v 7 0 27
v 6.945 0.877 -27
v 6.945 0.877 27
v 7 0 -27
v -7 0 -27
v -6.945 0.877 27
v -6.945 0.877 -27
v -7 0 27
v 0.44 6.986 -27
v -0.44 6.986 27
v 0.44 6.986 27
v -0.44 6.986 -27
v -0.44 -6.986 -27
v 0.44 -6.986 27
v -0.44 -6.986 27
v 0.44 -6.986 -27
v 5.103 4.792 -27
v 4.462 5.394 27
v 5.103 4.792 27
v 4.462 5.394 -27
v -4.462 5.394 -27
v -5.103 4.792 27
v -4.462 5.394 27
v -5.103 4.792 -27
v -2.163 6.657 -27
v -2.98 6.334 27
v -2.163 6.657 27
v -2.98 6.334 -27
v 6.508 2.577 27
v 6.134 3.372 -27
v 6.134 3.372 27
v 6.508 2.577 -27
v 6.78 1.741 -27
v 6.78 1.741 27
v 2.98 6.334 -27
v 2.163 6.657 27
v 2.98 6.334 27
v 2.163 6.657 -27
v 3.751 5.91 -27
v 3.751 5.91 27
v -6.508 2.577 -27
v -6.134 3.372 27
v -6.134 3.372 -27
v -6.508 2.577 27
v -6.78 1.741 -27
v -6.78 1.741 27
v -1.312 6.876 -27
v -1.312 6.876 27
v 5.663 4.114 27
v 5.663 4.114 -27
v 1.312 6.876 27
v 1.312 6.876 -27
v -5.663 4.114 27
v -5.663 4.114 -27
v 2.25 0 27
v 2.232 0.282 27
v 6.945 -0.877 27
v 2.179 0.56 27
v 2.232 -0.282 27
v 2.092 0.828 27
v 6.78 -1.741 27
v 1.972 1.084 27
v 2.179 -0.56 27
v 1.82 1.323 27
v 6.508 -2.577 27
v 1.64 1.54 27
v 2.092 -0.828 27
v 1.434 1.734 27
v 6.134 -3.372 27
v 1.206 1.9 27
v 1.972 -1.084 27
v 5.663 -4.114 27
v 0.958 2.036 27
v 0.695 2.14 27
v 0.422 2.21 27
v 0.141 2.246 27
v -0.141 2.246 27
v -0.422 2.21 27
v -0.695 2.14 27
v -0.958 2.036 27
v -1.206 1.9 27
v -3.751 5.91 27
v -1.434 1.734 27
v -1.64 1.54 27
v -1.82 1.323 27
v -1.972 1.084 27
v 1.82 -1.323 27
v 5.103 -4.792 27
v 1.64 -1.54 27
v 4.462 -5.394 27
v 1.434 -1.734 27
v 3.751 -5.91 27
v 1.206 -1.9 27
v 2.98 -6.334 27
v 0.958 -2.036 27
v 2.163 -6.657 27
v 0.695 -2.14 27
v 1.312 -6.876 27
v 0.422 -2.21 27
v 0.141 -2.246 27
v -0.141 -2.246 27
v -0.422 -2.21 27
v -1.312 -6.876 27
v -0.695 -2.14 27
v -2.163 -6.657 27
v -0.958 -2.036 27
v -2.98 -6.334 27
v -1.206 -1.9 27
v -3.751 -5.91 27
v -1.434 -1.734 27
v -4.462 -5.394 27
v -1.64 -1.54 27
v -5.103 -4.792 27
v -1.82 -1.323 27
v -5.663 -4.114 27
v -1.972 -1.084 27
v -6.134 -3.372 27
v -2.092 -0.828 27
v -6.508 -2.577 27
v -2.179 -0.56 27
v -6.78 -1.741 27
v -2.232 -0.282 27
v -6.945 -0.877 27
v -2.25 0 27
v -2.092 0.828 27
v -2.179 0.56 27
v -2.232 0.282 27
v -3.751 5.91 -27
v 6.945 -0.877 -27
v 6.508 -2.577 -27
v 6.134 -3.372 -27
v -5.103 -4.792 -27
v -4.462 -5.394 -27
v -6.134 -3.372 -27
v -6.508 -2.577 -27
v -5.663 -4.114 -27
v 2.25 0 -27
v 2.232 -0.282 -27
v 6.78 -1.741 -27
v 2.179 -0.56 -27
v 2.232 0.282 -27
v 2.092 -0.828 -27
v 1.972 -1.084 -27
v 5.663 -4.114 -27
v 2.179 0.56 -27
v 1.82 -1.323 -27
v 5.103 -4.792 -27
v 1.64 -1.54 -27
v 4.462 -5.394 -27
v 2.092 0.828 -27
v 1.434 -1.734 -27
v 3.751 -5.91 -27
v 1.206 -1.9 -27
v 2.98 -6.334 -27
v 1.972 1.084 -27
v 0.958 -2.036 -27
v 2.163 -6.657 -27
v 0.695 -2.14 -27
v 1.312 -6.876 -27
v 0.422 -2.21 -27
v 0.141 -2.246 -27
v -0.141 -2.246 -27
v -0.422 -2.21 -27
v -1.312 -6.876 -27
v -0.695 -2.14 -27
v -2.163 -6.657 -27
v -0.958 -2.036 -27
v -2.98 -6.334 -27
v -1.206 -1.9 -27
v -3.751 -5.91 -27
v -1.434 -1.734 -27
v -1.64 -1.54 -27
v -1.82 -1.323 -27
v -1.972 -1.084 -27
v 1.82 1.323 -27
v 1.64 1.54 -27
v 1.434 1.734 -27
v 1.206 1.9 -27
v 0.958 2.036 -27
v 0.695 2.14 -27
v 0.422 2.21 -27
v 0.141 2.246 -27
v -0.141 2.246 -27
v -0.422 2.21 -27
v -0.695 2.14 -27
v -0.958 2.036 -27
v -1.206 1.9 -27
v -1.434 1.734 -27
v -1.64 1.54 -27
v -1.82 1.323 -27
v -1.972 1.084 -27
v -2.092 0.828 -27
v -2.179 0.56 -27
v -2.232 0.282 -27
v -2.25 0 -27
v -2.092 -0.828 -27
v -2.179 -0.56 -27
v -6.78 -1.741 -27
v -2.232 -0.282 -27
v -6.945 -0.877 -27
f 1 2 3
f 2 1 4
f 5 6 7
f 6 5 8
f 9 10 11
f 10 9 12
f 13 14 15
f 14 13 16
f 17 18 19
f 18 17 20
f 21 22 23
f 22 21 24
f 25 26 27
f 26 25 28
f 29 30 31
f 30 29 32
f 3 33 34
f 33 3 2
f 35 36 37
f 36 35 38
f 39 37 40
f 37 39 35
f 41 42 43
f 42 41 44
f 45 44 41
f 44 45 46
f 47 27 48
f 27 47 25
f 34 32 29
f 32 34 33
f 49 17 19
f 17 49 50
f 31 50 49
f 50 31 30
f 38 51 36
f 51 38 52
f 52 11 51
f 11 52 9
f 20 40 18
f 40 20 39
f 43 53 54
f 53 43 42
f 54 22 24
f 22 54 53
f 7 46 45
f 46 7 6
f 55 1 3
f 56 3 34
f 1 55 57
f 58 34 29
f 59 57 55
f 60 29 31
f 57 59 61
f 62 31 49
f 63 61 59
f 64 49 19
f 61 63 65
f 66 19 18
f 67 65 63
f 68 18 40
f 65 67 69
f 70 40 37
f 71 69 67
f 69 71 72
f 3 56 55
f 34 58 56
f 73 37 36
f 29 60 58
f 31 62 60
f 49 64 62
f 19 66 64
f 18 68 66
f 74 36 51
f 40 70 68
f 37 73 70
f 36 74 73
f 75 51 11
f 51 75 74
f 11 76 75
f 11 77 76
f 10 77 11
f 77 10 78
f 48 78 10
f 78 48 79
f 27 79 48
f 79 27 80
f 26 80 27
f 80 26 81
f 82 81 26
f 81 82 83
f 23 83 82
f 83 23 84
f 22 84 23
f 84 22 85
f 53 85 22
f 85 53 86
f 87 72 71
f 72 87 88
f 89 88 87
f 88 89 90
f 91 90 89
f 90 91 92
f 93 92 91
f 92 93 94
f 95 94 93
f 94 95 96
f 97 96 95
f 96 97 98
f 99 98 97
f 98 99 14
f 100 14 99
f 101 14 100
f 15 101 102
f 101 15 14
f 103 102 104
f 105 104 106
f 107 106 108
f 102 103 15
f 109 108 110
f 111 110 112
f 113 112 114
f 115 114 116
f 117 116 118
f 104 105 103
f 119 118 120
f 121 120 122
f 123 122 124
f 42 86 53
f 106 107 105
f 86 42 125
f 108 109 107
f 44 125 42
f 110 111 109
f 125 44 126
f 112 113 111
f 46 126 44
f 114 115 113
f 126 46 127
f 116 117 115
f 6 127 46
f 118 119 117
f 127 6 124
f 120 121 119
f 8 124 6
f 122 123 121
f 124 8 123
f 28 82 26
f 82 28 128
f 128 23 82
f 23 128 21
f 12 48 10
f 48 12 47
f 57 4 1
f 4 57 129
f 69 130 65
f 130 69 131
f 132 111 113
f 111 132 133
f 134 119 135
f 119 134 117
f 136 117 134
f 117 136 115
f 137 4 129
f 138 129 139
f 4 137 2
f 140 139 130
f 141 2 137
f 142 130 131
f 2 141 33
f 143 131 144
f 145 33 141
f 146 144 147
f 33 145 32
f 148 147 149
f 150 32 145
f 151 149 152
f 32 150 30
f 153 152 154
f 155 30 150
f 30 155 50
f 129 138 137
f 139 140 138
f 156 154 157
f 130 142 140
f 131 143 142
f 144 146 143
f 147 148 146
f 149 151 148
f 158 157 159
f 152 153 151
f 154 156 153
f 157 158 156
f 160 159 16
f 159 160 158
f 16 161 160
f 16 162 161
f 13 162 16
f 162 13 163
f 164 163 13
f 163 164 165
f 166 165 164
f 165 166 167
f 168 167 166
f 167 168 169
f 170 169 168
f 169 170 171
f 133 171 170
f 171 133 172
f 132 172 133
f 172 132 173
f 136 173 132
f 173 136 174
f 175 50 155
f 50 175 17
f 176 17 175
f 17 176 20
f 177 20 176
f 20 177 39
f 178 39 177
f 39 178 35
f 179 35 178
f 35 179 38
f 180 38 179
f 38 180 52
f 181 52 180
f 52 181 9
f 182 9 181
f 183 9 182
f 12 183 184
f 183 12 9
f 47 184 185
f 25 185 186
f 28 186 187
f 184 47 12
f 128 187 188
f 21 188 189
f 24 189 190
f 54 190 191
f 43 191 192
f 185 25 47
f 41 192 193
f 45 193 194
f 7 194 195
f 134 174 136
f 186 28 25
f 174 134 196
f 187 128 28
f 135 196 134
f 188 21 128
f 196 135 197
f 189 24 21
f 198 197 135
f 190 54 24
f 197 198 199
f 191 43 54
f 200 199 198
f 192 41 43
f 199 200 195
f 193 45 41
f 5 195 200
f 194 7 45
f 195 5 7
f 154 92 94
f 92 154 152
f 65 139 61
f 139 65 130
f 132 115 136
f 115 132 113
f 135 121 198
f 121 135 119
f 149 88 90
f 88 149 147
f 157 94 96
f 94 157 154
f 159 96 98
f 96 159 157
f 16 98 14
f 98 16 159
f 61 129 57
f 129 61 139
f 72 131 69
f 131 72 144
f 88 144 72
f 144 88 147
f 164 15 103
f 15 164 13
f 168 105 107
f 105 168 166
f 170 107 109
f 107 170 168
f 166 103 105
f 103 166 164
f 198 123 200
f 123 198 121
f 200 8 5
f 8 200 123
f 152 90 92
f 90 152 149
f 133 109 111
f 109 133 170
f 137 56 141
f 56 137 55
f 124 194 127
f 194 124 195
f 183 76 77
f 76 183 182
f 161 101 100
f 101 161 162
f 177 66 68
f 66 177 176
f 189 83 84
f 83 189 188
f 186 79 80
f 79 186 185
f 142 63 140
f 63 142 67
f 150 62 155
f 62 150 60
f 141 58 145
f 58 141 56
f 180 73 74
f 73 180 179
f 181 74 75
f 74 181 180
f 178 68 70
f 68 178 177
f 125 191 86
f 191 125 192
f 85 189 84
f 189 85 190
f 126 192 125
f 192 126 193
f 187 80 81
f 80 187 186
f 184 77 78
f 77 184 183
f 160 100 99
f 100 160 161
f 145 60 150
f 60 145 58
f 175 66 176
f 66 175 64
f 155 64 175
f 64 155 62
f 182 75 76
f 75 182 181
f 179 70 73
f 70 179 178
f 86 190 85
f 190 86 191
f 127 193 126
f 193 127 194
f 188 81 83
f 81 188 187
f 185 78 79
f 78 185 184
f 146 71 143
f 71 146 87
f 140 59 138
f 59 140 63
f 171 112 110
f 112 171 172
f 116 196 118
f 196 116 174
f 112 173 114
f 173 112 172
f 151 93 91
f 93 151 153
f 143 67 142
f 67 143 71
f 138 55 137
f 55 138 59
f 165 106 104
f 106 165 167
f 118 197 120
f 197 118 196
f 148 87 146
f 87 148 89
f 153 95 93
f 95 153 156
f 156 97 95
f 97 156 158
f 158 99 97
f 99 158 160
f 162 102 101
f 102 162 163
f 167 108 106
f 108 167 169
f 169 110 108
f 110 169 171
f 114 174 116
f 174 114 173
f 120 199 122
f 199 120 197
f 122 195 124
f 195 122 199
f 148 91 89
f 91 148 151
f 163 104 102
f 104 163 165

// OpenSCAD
$fn = 50;


difference() {
	union() {
		translate(v = [0, 0, -27.0000000000]) {
			cylinder(h = 54, r = 7.0000000000);
		}
	}
	union() {
		translate(v = [0, 0, -100.0000000000]) {
			cylinder(h = 200, r = 2.2500000000);
		}
	}
}
